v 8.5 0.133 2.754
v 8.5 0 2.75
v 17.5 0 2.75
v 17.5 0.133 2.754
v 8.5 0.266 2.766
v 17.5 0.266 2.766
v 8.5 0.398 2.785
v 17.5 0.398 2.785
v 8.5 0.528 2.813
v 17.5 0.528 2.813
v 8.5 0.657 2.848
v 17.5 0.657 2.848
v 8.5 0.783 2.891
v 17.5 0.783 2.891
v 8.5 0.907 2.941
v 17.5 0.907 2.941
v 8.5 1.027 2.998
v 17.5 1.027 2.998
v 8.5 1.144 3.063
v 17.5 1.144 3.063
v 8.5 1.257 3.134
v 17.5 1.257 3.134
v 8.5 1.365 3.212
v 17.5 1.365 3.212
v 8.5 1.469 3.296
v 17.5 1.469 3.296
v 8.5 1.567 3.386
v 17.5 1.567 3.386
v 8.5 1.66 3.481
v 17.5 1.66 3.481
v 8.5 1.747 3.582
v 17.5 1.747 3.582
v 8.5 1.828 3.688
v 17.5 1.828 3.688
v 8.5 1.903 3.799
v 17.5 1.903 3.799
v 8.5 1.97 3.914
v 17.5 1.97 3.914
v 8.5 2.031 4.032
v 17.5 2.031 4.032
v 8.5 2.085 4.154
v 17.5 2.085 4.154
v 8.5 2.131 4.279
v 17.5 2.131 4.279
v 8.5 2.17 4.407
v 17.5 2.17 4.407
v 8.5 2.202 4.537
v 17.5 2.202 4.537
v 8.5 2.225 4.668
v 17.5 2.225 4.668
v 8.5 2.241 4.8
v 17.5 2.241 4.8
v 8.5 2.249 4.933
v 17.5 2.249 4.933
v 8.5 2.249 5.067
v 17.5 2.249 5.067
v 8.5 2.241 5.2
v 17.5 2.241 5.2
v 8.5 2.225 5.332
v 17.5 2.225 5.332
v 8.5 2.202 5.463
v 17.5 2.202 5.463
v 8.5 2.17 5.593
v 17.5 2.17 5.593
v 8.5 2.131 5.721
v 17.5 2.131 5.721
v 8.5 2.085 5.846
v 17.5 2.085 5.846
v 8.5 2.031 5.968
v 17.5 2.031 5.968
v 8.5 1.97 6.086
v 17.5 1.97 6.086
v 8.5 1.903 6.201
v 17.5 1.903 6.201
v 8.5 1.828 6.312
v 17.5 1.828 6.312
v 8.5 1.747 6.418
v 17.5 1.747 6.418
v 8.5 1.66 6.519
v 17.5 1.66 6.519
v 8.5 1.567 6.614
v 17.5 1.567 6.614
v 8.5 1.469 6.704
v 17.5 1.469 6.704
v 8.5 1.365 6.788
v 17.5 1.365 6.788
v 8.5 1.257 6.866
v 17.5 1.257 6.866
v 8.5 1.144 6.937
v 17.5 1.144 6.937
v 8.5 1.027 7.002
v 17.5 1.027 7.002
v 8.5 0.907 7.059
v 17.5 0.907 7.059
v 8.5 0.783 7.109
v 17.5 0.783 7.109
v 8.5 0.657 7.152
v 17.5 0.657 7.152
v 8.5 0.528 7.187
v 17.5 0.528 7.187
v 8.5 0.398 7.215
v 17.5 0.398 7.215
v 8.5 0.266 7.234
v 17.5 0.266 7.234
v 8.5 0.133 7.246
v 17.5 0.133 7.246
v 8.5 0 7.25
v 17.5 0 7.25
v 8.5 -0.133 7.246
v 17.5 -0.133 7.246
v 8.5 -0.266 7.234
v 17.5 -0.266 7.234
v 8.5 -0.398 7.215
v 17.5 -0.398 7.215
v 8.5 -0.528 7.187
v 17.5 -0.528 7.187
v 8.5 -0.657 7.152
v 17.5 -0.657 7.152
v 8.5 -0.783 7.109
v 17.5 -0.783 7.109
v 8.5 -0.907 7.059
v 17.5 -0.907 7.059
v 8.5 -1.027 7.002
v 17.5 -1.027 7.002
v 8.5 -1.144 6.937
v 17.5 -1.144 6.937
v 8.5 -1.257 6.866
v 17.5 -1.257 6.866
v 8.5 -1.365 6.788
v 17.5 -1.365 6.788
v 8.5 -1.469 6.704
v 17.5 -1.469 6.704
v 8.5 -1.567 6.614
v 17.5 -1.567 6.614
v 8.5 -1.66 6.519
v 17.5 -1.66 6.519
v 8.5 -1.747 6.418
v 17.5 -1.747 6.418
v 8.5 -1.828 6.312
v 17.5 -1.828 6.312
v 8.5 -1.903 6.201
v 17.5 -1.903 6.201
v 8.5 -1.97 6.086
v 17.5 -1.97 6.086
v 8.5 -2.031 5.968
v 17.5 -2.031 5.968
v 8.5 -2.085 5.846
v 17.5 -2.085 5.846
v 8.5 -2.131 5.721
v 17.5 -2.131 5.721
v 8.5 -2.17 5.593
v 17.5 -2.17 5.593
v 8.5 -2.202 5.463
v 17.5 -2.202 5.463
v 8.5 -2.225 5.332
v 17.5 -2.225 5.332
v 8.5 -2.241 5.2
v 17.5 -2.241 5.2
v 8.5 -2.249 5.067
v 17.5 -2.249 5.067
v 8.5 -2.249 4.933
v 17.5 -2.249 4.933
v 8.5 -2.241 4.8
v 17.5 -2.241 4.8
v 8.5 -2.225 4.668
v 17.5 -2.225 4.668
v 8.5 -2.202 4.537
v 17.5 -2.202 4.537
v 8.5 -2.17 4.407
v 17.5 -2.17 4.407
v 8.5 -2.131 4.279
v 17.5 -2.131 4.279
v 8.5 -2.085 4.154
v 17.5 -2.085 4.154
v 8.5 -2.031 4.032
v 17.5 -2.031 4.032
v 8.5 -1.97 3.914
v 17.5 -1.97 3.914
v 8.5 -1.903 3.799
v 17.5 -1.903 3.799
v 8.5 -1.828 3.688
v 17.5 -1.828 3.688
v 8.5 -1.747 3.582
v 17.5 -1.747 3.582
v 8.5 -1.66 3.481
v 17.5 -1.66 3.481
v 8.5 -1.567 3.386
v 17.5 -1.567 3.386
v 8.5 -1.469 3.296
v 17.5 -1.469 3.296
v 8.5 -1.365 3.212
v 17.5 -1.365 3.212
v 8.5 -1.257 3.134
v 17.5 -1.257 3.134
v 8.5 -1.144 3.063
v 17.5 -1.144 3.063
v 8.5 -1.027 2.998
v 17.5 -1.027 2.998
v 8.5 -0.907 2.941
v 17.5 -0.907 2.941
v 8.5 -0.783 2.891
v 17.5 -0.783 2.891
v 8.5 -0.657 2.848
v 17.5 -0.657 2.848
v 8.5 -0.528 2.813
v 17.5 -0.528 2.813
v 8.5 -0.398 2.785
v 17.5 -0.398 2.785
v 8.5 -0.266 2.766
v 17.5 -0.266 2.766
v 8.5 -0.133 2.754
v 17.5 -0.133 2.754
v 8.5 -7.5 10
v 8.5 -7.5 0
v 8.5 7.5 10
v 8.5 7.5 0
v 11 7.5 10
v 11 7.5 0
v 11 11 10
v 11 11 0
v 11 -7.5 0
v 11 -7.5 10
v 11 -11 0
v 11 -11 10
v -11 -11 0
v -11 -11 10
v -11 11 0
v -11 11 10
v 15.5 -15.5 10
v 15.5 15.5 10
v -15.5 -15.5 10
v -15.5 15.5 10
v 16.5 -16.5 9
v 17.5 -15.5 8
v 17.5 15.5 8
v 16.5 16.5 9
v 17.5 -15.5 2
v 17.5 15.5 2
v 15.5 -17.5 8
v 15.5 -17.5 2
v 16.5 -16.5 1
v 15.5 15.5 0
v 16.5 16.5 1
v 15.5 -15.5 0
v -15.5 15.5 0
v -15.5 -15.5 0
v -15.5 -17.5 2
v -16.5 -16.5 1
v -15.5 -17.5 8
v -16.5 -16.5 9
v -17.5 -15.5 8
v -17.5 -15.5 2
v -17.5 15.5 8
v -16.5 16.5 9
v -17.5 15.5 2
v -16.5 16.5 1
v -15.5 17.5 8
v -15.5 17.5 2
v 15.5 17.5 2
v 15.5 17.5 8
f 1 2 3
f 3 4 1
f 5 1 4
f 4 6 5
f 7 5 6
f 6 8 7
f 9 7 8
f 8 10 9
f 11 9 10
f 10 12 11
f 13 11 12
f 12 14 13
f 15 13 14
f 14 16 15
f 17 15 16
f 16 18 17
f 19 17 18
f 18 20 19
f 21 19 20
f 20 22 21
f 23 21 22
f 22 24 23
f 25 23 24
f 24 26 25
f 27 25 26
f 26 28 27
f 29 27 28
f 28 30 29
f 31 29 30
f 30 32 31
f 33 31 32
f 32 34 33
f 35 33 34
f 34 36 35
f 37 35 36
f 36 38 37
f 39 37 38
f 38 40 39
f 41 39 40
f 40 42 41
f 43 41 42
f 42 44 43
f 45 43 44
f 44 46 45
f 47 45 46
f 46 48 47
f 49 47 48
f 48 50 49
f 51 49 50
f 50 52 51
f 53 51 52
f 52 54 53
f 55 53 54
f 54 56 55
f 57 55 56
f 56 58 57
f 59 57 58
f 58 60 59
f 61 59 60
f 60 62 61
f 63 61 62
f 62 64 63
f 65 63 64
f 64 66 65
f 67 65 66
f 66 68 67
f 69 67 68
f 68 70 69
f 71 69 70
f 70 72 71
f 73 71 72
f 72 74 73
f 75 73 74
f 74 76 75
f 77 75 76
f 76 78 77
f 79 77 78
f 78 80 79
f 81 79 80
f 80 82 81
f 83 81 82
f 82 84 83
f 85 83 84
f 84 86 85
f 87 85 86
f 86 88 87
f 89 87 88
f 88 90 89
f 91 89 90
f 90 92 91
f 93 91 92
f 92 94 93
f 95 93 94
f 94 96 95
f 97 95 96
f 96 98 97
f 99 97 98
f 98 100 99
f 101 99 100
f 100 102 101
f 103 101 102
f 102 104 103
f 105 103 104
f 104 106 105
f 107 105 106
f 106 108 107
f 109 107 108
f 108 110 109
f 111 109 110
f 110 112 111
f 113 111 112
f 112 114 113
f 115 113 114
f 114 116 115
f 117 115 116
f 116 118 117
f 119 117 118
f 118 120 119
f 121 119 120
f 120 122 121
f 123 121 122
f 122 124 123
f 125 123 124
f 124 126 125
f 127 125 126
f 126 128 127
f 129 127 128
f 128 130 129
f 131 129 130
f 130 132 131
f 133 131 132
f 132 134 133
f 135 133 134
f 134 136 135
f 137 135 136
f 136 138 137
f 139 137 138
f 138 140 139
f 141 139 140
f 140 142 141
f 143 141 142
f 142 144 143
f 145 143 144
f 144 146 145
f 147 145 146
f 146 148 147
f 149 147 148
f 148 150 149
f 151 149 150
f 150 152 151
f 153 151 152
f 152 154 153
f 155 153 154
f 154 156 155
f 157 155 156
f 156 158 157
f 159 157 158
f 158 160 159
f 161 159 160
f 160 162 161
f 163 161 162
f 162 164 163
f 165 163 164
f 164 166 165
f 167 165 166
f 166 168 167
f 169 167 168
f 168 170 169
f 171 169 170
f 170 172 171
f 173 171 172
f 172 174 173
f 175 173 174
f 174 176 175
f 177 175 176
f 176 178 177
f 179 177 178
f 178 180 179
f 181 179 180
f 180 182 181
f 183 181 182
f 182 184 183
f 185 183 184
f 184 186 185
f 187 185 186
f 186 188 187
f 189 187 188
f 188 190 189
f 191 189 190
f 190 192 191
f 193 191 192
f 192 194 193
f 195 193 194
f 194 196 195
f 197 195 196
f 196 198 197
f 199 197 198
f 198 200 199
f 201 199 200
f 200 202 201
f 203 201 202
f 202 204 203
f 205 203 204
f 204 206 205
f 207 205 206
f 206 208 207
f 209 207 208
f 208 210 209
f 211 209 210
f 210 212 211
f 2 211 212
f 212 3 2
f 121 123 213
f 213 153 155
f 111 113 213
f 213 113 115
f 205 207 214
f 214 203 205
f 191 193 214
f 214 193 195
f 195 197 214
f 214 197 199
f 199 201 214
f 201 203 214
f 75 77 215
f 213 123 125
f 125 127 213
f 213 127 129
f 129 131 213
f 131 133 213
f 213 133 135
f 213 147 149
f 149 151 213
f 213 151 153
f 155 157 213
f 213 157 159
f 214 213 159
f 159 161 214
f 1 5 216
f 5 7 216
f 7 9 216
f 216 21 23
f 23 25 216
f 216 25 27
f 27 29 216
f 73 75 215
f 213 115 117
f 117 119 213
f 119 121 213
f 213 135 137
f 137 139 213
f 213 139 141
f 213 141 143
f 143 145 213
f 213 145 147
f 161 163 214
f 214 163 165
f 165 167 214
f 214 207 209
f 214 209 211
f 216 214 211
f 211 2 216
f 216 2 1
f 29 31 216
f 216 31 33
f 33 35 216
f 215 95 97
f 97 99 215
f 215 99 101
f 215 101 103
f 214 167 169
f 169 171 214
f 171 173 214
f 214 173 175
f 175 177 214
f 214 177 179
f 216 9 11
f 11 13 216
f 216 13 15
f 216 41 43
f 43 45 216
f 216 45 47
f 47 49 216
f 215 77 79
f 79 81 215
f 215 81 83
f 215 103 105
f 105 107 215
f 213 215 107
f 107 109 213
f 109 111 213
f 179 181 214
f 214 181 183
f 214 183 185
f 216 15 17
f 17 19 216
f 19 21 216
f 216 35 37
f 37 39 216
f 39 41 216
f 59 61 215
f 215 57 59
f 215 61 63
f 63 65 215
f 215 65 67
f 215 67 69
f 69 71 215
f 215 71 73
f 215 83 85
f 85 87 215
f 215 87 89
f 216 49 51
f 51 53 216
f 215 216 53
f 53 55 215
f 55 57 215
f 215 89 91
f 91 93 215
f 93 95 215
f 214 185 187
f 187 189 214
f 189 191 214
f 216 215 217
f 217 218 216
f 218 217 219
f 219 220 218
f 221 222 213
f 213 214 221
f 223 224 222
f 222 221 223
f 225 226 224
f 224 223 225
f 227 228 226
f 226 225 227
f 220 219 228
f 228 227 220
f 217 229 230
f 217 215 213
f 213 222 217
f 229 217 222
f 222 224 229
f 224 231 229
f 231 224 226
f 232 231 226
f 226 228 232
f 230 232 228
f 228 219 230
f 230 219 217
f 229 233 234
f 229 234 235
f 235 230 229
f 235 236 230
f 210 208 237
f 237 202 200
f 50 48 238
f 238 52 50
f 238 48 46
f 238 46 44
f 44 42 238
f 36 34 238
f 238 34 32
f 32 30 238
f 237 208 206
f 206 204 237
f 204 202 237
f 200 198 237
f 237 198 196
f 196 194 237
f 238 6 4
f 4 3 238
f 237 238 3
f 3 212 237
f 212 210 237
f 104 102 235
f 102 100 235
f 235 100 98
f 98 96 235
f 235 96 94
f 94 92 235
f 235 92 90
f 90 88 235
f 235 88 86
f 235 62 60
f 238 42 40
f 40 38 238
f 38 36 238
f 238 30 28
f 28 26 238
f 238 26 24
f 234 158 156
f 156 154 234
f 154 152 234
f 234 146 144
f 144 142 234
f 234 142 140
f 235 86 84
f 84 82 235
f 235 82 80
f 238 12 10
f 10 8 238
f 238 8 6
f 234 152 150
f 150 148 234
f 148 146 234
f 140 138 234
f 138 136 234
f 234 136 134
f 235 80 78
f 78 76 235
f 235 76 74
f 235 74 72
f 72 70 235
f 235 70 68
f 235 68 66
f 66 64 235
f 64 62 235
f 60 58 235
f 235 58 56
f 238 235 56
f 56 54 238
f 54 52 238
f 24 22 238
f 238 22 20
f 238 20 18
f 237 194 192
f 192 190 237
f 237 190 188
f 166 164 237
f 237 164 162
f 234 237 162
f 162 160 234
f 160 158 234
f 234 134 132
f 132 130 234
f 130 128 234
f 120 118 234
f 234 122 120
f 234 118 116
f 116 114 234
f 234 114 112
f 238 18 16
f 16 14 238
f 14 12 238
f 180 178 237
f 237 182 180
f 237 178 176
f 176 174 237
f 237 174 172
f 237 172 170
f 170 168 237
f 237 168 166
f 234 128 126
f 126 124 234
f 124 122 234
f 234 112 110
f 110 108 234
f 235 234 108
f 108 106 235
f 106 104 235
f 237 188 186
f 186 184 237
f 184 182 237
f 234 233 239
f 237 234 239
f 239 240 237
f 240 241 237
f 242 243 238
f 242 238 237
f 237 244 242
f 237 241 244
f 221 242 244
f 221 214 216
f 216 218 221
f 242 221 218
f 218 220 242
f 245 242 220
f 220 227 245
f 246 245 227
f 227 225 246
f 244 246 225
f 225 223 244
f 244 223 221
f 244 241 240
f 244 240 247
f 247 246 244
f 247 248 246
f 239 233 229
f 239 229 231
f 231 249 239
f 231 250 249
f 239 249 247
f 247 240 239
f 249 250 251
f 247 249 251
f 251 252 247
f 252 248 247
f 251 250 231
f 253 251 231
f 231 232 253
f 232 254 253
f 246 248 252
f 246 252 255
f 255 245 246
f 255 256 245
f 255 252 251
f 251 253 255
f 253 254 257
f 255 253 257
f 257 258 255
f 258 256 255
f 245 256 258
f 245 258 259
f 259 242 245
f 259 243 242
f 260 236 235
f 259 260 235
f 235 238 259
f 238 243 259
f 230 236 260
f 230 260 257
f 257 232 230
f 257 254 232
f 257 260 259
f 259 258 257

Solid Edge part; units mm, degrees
sketch "Sketch1" plane through (0, 0, 0) normal (0, 0, 1) x (1, 0, 0)
  line L0 (8.5, 7.5) -> (8.5, -7.5)
  line L1 (8.5, -7.5) -> (11, -7.5)
  line L2 (11, -11) -> (11, -7.5)
  line L3 (-11, -11) -> (11, -11)
  line L4 (-11, 11) -> (-11, -11)
  line L5 (11, 11) -> (-11, 11)
  line L6 (11, 7.5) -> (11, 11)
  line L7 (11, 7.5) -> (8.5, 7.5)
  line L8 (17.5, -17.5) -> (17.5, 17.5)
  line L9 (17.5, 17.5) -> (-17.5, 17.5)
  line L10 (-17.5, 17.5) -> (-17.5, -17.5)
  line L11 (-17.5, -17.5) -> (17.5, -17.5)
  dimension "D1" = 15
  dimension "D2" = 22
  dimension "D3" = 22
extrude "Protrusion1" add sketch "Sketch1" along normal blind 10
chamfer "Chaflán_1" distance 2 angle 45 12 edges at (17.5, -17.5, 5) (-17.5, -17.5, 5) (-17.5, 17.5, 5) (17.5, 17.5, 5) (0, 17.5, 10) (-17.5, 0, 10) (0, 17.5, 0) (-17.5, 0, 0) (0, -17.5, 0) (17.5, 0, 0) (17.5, 0, 10) (0, -17.5, 10)
sketch "Sketch2" plane through (17.5, 0, 5) normal (1, 0, 0) x (0, 1, 0)
  circle A0 centre (0, 0) radius 2.25
extrude "Cutout1" cut sketch "Sketch2" against normal up to surface (9 mm away)
